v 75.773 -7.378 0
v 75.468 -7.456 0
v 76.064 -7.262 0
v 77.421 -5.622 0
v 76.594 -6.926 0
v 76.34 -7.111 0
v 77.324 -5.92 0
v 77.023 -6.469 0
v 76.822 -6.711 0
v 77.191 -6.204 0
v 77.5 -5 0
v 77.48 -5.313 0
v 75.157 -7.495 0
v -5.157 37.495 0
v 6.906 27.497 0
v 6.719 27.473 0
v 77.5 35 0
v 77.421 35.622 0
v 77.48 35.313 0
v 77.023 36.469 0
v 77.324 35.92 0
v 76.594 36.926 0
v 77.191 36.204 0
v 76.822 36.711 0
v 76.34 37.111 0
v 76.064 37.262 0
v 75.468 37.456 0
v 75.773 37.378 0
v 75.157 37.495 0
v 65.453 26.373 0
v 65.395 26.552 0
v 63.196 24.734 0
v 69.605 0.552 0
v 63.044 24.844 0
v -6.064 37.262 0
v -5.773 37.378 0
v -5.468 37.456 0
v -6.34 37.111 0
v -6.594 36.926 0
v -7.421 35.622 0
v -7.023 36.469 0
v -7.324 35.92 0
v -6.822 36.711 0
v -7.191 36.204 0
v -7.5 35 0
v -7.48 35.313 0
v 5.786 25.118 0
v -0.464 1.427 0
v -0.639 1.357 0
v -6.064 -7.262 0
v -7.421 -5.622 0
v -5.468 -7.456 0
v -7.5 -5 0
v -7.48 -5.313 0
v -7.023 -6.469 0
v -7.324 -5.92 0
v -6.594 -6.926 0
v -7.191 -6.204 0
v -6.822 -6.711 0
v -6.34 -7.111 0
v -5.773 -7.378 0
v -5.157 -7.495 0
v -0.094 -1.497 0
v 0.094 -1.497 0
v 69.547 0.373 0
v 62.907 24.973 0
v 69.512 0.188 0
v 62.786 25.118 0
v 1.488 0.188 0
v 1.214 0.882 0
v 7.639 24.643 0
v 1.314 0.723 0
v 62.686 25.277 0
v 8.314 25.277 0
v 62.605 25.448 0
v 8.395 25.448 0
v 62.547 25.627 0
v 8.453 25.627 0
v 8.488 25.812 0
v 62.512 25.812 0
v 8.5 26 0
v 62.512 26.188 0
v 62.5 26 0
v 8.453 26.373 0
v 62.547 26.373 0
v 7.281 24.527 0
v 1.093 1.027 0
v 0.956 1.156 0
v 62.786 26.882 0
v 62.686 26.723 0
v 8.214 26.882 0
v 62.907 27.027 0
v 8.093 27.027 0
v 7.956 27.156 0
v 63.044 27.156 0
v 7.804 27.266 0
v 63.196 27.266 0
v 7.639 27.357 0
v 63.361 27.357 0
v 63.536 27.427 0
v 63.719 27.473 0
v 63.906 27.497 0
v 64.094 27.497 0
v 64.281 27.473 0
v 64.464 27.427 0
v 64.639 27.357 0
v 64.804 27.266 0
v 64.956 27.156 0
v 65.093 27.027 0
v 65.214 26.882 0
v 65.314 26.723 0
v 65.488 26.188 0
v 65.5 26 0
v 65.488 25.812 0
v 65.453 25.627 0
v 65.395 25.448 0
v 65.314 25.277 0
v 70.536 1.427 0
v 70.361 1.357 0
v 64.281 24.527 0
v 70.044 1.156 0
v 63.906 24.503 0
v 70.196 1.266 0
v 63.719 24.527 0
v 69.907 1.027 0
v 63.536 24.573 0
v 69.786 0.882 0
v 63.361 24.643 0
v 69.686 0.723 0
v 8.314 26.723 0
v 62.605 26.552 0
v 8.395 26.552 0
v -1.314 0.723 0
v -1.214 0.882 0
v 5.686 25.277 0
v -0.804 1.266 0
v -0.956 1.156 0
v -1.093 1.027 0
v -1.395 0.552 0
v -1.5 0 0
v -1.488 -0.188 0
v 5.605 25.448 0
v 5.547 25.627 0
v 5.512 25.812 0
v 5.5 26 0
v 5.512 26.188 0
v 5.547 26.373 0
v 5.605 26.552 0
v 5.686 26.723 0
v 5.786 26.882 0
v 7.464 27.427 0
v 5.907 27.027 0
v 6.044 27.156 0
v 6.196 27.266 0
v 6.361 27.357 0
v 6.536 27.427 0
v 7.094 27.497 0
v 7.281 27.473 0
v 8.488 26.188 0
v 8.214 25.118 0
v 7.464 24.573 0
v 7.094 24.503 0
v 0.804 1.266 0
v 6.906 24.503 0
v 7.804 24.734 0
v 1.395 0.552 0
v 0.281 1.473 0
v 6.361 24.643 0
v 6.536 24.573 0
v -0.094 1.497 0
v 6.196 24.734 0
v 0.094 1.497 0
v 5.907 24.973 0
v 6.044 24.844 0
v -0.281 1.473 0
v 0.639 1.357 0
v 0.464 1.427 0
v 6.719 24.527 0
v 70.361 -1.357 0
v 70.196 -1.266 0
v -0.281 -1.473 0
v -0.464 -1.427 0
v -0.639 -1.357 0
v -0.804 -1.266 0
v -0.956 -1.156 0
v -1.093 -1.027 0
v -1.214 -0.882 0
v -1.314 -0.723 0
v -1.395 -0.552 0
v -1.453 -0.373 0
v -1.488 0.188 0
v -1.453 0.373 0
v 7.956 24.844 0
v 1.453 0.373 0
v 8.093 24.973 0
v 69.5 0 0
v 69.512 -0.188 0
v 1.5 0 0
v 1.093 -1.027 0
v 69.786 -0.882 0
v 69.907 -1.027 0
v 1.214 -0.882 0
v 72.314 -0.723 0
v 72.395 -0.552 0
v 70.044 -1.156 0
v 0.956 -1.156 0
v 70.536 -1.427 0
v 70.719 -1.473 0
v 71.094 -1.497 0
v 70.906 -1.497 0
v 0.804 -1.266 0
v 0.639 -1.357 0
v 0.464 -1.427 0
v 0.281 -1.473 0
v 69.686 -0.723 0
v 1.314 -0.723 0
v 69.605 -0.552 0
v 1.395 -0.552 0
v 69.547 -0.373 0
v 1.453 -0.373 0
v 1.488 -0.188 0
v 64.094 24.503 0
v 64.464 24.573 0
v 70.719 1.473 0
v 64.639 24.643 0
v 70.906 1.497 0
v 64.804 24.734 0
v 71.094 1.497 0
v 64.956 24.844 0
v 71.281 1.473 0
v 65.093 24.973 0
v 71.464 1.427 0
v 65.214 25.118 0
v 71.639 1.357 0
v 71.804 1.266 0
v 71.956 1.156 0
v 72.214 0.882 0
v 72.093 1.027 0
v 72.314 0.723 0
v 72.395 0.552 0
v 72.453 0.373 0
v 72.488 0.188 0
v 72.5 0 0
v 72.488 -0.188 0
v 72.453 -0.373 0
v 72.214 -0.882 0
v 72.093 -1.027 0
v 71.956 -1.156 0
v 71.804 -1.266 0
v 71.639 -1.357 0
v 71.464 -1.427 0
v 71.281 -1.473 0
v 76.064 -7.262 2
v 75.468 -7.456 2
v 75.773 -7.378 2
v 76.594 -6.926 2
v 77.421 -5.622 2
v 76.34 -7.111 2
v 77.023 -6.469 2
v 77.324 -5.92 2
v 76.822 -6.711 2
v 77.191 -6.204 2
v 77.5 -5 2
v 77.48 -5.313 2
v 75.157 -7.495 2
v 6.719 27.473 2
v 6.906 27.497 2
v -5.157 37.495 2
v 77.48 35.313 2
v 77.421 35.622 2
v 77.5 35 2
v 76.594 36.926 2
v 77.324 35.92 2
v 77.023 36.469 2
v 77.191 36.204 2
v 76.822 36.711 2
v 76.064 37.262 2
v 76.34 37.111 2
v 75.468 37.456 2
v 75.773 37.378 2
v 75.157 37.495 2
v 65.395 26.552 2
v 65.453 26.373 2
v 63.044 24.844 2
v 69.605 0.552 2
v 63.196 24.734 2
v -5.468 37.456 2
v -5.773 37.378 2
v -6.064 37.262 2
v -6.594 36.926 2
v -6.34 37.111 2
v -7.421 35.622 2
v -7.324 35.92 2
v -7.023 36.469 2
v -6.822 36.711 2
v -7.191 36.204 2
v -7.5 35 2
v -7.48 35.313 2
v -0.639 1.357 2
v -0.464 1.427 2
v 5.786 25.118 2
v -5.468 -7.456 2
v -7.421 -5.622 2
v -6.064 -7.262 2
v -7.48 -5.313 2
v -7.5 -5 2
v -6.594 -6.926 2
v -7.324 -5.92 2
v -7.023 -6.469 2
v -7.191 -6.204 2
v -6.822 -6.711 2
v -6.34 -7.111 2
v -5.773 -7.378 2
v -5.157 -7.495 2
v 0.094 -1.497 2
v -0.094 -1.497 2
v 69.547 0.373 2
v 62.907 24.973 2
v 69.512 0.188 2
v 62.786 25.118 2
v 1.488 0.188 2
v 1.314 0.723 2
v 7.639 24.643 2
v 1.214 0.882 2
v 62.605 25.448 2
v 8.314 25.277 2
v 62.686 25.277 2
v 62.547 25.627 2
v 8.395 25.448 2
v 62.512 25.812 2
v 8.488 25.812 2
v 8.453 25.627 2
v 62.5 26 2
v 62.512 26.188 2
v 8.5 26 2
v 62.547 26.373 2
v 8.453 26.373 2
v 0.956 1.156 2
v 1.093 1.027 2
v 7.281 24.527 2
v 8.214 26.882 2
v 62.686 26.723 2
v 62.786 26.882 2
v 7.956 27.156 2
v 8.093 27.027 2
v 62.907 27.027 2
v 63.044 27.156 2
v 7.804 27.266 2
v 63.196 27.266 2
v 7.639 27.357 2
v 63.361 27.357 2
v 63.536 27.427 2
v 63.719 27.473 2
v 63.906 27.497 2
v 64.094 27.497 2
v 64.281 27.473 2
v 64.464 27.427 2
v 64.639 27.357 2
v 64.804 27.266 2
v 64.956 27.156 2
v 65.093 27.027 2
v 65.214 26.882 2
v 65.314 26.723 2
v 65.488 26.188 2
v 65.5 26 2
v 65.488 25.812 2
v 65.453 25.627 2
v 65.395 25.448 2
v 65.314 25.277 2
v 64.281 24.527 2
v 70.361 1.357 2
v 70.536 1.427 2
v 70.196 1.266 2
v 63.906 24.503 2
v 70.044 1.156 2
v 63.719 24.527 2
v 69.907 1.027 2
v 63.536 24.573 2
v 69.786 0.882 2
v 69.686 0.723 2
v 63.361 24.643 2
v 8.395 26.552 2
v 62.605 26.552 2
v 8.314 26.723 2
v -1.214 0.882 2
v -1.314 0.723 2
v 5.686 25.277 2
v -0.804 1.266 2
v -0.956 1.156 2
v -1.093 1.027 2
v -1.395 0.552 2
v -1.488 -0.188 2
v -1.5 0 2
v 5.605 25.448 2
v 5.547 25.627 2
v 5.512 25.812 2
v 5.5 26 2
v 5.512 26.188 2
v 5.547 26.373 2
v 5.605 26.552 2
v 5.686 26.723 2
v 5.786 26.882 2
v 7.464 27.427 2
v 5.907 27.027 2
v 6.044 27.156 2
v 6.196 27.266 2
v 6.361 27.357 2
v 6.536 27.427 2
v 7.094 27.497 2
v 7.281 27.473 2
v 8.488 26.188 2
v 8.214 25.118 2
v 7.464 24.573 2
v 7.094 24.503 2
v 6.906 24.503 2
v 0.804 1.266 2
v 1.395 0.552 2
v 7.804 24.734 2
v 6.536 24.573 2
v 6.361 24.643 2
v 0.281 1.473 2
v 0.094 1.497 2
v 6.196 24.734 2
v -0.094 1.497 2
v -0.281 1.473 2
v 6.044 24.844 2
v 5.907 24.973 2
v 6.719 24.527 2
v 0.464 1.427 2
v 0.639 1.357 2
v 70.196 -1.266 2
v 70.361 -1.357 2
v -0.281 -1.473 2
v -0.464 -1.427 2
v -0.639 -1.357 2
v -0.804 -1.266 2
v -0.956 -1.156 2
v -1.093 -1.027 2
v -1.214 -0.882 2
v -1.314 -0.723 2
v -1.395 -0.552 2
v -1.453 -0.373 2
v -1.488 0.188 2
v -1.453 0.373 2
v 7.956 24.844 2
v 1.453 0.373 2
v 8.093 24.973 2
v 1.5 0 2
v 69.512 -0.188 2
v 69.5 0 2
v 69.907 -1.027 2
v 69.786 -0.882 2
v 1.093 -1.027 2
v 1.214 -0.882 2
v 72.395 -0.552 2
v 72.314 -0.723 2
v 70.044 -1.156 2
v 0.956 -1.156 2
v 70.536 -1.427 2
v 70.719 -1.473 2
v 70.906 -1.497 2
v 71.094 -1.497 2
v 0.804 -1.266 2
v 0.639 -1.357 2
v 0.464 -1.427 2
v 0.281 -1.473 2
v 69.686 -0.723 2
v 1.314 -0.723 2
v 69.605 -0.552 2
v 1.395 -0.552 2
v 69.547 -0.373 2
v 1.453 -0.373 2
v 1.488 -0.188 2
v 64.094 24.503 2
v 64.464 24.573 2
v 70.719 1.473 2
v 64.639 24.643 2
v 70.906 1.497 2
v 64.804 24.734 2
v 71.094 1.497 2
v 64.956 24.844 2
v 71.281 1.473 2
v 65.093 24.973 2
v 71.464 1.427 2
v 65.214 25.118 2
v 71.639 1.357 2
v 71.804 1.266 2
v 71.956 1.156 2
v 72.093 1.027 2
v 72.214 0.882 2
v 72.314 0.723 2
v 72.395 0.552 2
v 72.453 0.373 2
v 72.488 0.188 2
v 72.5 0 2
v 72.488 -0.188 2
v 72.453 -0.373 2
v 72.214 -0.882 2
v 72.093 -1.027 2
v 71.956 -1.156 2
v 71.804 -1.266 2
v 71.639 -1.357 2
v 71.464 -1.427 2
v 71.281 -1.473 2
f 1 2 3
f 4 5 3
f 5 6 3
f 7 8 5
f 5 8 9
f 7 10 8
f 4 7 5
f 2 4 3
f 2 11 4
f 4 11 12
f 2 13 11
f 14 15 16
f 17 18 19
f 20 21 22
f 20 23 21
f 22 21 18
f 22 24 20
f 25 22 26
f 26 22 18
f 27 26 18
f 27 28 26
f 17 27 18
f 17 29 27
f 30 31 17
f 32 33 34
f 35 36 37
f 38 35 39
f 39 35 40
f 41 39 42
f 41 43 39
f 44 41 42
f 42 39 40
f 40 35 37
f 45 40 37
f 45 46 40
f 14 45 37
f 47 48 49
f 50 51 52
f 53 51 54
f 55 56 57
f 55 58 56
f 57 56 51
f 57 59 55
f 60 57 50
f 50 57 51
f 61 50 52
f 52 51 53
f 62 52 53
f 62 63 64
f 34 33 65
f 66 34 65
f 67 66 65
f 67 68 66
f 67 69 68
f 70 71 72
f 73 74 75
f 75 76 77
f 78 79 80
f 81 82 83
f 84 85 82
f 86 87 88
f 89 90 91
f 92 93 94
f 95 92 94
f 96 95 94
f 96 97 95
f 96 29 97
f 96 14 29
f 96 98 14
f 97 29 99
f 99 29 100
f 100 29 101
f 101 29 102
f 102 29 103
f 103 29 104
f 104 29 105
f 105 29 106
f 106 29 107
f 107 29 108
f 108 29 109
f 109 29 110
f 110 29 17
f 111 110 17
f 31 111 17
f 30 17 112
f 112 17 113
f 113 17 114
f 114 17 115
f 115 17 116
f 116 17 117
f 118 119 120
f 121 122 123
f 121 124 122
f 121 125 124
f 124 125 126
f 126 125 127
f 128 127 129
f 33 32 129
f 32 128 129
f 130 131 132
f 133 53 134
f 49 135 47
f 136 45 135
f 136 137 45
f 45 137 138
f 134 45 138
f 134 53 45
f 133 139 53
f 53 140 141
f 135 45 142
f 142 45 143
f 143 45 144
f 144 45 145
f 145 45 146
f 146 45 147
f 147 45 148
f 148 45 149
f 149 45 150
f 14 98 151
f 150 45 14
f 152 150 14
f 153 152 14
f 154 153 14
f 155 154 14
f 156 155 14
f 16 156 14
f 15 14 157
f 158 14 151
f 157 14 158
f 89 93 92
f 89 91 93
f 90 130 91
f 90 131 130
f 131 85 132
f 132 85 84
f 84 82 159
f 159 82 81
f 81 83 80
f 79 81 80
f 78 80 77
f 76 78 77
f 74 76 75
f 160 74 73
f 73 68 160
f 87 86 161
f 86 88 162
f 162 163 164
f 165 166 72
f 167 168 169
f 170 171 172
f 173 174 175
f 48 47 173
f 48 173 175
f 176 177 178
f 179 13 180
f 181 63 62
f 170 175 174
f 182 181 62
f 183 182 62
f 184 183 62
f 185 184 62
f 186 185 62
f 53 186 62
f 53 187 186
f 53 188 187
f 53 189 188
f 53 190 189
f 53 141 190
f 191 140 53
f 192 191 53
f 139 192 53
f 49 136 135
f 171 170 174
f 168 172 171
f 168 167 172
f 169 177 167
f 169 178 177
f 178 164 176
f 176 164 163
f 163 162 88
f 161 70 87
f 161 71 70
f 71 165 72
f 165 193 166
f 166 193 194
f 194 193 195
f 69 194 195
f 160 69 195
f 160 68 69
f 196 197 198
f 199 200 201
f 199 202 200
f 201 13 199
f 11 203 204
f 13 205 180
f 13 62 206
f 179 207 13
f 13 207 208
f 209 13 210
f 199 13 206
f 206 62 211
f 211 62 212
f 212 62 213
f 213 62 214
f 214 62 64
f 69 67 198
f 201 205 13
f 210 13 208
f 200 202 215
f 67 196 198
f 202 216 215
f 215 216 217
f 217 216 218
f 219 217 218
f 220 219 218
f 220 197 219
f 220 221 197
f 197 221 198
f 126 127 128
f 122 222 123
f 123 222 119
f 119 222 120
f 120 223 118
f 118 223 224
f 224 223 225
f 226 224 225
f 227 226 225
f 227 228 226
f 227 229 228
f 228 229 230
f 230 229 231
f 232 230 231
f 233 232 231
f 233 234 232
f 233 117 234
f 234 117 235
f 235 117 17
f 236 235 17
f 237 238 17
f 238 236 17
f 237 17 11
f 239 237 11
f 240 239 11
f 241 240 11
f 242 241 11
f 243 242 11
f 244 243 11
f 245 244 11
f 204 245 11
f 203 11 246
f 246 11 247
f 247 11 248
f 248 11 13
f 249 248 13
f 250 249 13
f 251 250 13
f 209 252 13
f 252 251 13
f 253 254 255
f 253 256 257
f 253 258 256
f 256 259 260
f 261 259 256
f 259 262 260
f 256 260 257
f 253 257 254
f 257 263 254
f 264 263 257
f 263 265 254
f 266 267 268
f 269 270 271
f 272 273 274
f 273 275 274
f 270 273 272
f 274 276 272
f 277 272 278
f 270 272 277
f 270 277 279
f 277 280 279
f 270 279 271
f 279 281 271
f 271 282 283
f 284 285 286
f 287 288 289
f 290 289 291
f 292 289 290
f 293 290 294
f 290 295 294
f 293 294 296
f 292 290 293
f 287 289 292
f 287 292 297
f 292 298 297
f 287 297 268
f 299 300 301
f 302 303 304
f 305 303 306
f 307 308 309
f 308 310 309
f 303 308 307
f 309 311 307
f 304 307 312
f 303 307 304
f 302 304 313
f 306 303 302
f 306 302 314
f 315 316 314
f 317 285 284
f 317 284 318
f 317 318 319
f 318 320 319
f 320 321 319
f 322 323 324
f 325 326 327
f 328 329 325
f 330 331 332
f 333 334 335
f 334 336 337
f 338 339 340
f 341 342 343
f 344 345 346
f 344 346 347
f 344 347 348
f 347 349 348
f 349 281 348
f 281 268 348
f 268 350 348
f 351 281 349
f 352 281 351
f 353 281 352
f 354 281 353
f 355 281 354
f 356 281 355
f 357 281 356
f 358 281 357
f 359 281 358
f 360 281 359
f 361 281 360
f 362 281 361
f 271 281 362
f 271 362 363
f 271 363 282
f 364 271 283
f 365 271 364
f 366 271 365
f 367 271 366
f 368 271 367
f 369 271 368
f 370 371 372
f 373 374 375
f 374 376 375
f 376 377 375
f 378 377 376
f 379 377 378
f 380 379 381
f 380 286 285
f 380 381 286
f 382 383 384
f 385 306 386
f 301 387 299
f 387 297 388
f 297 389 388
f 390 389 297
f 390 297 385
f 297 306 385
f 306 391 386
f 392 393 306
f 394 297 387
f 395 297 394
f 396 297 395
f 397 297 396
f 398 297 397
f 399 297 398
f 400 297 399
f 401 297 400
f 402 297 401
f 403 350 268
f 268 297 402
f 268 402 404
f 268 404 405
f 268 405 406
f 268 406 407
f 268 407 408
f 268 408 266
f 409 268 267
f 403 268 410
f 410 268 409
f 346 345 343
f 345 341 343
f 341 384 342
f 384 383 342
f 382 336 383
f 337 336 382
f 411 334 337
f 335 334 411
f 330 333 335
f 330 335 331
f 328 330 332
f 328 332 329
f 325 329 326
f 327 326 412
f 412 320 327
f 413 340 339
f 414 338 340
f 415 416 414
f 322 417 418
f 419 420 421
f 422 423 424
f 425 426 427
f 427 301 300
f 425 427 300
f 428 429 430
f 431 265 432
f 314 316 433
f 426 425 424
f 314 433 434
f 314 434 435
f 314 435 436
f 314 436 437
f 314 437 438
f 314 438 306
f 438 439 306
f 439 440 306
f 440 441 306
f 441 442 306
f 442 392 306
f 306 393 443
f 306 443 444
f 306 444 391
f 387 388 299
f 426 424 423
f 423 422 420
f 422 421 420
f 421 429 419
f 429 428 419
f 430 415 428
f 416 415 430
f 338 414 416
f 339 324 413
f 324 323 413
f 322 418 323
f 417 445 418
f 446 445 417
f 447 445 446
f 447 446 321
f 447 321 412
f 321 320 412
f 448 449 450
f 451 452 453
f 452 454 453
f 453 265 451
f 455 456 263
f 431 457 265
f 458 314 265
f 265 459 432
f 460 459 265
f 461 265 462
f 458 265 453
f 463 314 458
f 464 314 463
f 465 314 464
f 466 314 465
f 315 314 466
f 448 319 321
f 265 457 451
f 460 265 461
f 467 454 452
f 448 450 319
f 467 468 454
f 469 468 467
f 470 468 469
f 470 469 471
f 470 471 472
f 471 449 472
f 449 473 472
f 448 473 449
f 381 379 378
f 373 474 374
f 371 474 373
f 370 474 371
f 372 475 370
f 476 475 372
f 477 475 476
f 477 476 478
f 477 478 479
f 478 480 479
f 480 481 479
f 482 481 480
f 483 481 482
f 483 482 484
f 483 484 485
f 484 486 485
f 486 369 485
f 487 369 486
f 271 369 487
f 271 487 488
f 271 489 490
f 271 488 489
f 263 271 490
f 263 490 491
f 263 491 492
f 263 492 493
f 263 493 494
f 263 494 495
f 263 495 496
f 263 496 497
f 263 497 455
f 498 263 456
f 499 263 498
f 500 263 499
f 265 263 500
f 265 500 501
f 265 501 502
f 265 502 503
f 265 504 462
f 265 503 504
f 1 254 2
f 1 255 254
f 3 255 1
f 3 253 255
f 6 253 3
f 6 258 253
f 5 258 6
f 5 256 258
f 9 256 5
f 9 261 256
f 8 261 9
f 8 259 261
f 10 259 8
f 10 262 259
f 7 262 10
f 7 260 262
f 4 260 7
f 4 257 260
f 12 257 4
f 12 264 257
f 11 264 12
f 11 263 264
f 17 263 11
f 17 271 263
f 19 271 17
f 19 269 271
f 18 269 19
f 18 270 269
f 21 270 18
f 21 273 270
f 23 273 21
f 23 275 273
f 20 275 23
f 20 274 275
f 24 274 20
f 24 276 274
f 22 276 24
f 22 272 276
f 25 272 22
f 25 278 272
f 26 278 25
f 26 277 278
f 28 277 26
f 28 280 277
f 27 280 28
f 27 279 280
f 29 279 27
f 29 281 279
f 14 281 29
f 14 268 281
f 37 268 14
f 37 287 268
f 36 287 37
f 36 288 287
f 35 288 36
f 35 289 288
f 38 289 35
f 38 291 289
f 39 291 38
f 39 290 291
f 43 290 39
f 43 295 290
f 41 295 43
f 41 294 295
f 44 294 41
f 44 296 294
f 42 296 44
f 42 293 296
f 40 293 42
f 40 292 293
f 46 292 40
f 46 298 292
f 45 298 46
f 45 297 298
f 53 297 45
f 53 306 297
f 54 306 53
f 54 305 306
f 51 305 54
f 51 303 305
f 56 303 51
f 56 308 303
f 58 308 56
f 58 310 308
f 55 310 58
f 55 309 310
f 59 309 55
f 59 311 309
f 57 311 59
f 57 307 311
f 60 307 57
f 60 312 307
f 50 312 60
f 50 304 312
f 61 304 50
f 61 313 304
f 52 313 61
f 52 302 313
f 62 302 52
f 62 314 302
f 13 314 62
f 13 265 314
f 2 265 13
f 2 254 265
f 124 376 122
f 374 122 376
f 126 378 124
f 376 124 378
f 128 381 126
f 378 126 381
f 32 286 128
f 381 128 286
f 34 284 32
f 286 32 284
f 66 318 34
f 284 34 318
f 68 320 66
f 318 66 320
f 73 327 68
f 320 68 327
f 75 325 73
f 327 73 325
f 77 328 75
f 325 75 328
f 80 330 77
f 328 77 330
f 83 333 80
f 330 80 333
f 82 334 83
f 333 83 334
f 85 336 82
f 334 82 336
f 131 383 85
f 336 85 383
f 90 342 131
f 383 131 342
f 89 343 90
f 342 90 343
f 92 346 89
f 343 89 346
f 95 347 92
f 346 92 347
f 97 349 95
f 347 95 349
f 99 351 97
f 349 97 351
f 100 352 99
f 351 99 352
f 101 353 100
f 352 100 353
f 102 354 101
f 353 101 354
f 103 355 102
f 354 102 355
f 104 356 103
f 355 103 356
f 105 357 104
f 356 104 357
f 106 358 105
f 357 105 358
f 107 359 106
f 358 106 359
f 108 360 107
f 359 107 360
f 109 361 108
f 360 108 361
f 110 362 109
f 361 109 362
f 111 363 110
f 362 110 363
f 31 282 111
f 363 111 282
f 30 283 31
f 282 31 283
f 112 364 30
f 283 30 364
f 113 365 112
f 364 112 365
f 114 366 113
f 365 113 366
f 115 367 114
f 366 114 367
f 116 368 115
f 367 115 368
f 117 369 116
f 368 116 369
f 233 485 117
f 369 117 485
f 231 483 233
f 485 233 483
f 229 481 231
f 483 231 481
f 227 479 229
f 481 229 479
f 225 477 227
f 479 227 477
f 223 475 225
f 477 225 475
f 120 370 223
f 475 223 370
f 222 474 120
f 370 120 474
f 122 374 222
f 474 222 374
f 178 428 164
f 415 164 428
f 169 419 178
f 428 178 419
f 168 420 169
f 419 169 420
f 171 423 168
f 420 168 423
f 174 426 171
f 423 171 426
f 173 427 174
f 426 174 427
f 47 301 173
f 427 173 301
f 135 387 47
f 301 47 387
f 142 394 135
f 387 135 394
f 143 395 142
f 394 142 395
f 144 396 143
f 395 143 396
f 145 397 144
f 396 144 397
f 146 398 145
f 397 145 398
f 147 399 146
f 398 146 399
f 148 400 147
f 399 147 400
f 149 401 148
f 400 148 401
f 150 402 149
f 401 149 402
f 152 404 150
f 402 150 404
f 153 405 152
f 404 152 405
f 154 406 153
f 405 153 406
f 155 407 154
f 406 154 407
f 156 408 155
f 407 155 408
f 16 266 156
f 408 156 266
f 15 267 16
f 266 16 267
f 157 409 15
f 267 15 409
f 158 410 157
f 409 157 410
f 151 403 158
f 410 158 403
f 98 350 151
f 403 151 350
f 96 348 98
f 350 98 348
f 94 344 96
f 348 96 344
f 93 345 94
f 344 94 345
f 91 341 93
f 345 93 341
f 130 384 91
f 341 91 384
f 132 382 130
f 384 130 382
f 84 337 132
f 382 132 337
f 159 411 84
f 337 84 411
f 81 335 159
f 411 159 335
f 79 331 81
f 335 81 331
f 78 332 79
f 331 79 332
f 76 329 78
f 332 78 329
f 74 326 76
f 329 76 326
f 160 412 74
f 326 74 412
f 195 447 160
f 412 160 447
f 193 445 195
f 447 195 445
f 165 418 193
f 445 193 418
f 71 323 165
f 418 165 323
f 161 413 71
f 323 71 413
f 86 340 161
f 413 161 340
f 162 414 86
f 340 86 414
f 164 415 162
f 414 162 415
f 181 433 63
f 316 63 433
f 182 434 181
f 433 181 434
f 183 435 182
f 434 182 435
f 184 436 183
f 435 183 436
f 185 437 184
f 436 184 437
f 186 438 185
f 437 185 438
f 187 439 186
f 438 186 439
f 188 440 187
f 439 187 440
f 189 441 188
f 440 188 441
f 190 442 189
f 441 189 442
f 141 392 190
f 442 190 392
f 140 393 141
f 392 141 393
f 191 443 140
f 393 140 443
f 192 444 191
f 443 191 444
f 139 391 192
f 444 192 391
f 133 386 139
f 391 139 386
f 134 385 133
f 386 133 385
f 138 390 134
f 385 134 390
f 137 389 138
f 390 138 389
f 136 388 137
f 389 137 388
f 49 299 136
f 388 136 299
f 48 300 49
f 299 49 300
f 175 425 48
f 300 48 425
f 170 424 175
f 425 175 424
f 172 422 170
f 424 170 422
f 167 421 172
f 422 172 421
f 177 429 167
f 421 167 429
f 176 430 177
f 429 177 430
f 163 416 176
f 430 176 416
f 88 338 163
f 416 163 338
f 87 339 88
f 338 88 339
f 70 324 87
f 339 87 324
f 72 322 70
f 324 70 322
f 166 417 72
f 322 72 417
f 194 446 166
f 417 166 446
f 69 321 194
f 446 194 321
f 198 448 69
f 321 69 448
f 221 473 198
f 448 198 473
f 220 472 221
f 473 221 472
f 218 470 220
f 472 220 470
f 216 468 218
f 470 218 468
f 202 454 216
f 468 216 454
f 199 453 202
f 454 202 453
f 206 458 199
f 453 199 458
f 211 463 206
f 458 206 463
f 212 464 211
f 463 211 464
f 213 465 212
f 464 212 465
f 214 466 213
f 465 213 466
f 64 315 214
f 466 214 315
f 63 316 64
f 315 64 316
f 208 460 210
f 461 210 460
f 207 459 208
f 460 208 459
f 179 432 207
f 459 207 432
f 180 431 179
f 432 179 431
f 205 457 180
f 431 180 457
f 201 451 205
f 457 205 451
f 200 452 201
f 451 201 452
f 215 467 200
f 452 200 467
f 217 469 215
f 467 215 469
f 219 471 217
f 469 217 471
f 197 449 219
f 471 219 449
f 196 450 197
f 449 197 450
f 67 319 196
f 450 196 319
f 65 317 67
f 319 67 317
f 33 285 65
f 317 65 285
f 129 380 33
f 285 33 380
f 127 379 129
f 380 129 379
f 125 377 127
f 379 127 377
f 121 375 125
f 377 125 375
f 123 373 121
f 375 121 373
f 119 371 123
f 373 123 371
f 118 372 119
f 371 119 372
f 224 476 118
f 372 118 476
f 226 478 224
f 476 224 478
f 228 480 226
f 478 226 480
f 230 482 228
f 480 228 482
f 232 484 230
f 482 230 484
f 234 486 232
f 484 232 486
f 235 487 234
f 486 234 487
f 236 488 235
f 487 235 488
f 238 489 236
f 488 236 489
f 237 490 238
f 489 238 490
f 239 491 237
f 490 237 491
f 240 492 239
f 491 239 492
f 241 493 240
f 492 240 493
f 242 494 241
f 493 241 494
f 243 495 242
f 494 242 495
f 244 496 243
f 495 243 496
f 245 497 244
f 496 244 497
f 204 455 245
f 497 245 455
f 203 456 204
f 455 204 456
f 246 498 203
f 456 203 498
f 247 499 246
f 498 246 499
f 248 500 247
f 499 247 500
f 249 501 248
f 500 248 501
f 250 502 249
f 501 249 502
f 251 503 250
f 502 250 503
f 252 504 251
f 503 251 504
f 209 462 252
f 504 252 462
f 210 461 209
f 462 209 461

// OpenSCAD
drilling_d = 3;

linear_extrude(2){
	difference(){
		translate([-5,-5,0]){
			minkowski(){
				square([80,40]);
				circle(d=5, $fn=50);
			}
		}
		
		// D1
		translate([0,0,0]){
			circle(d=drilling_d, $fn=50);
		}
		
		// D2
		translate([71,0,0]){
			circle(d=drilling_d, $fn=50);
		}
		
		// D3
		translate([64,26,0]){
			circle(d=drilling_d, $fn=50);
		}
		
		// D4
		translate([7,26,0]){
			circle(d=drilling_d, $fn=50);
		}
	}
}
